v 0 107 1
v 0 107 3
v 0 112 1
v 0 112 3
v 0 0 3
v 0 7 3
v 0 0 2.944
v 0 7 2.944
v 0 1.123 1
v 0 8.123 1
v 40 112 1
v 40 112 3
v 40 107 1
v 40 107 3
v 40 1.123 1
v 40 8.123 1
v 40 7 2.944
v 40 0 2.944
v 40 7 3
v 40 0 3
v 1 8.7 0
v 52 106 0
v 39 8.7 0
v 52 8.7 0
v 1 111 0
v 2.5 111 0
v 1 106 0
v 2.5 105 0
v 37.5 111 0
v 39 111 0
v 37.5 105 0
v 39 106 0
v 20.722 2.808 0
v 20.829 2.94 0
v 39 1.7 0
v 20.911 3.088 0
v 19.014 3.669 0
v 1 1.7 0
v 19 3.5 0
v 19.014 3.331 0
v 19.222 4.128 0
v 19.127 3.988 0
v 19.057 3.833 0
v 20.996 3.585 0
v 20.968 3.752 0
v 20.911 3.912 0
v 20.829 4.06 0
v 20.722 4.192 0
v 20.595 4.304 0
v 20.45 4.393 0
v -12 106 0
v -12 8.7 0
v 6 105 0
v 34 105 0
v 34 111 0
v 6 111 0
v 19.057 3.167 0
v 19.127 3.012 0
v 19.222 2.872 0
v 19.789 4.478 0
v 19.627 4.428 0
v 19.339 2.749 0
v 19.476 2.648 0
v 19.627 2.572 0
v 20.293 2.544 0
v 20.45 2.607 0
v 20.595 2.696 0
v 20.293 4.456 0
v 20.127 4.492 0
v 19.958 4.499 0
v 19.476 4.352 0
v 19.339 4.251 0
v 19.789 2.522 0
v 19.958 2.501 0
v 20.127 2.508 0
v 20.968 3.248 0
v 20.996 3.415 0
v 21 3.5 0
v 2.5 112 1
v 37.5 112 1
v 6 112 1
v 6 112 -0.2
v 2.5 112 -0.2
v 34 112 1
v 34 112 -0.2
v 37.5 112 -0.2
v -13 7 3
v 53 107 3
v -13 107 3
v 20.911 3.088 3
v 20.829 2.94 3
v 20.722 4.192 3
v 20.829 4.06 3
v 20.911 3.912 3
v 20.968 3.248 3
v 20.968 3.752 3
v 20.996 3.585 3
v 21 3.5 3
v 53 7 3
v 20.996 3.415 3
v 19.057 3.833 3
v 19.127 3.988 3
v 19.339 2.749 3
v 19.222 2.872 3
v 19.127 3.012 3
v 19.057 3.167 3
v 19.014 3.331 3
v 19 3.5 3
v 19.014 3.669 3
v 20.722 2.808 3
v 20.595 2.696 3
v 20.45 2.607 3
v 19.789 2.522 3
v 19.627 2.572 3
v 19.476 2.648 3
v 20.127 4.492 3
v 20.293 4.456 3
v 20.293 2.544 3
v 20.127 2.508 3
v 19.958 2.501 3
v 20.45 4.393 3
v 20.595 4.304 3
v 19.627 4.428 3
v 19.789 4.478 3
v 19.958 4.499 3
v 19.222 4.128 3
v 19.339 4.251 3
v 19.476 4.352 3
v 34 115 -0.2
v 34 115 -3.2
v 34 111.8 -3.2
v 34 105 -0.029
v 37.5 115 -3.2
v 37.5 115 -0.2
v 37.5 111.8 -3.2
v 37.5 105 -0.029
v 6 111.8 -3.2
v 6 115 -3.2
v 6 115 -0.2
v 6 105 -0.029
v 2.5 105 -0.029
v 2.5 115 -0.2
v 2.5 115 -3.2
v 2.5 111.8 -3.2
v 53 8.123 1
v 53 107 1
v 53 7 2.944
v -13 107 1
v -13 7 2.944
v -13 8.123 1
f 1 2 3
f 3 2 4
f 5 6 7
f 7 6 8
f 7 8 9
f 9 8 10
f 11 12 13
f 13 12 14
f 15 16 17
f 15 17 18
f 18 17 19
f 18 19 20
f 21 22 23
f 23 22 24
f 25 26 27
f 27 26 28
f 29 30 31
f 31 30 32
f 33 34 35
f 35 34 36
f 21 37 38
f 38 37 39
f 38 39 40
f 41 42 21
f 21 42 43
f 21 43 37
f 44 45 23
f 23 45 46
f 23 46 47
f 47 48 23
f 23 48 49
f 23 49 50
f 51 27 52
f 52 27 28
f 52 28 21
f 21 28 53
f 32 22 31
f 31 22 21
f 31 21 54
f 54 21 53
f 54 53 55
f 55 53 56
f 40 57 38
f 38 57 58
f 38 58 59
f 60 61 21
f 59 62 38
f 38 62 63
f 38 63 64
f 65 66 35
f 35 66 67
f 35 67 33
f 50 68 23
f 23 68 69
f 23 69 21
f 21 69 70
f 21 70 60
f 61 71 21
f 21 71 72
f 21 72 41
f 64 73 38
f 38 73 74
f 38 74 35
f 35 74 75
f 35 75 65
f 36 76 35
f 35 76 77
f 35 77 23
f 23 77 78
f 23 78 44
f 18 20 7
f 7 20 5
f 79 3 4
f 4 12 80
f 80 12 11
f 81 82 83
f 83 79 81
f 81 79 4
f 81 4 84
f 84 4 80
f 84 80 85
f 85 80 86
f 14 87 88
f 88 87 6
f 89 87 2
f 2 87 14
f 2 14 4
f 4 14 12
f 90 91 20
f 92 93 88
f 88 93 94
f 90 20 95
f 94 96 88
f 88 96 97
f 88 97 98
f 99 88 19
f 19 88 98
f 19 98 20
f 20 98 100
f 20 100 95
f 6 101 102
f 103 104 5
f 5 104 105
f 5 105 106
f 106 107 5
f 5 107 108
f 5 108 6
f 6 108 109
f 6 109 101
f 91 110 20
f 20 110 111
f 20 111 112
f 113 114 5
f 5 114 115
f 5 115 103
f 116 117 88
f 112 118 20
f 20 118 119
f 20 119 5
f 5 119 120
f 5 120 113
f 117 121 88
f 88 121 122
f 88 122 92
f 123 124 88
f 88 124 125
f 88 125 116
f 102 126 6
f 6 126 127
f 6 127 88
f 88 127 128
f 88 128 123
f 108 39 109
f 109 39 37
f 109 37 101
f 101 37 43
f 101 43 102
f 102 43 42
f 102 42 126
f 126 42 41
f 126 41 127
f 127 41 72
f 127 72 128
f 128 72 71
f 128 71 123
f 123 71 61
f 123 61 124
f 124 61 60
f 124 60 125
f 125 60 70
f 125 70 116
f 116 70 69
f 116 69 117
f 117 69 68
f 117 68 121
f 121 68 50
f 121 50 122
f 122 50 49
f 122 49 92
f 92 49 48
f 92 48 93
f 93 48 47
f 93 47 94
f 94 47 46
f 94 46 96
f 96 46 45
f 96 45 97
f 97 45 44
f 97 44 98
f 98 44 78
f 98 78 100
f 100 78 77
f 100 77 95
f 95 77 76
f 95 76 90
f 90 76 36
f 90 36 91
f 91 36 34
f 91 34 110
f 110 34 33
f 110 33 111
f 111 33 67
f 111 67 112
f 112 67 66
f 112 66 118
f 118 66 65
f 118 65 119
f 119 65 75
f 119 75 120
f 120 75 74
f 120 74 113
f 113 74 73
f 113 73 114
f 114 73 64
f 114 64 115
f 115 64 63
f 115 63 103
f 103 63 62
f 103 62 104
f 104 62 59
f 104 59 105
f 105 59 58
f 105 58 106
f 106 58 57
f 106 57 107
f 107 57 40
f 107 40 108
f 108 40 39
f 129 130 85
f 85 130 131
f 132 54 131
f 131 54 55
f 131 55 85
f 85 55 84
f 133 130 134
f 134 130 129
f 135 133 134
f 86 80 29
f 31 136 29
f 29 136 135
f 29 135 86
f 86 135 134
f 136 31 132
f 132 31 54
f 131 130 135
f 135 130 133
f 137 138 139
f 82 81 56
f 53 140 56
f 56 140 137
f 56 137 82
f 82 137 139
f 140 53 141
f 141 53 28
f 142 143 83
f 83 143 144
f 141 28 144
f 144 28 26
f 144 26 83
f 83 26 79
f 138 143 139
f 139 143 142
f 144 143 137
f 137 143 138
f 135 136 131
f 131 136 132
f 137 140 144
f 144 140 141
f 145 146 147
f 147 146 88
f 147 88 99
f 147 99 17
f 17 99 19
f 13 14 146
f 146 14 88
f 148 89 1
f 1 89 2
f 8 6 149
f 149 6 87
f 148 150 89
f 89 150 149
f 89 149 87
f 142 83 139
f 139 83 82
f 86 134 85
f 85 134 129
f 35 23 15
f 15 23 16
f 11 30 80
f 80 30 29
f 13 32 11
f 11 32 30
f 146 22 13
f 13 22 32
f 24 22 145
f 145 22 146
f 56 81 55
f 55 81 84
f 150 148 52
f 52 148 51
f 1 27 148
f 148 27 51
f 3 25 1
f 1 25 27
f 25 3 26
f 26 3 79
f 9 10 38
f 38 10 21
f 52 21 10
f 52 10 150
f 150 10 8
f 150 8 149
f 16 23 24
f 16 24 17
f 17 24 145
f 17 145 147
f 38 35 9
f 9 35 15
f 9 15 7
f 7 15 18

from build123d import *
from OCP.BRepFilletAPI import BRepFilletAPI_MakeChamfer

# Parameters (mm, degrees)
SKETCH_1_W          = 40
SKETCH_1_H          = 112
EXTRUDE_1_DEPTH     = 3
SKETCH_2_R          = 1
CUT_EXTRUDE_1_DEPTH = 3
SKETCH_3_W          = 3.5
SKETCH_3_H          = 10
EXTRUDE_2_DEPTH     = 3.2
CHAMFER_1_SIZE      = 6.8
CHAMFER_1_SIZE2     = 3.170892075
SKETCH_4_W          = 66
SKETCH_4_H          = 100
EXTRUDE_3_DEPTH     = 3
SKETCH_5_W          = 42.259647881
SKETCH_5_H          = 3.16572893
CUT_EXTRUDE_2_DEPTH = 0.2
CHAMFER_3_SIZE      = 1
CHAMFER_4_SIZE      = 2.944486373
CHAMFER_4_SIZE_2    = 1.7


with BuildPart() as part:
    # 草圖1 → 填料-伸長1 (new body)
    with BuildSketch(Plane.XY):
        with Locations((20, 56)):
            Rectangle(SKETCH_1_W, SKETCH_1_H)
    extrude(amount=EXTRUDE_1_DEPTH)

    # 草圖2 → 除料-伸長1 (cut)
    with BuildSketch(Plane.XY):
        with Locations((20, 3.5)):
            Circle(SKETCH_2_R)
    extrude(amount=CUT_EXTRUDE_1_DEPTH, mode=Mode.SUBTRACT)

    # 草圖3 → 填料-伸長2 (add)
    with BuildSketch(Plane.XY):
        with Locations((35.75, 110)):
            Rectangle(SKETCH_3_W, SKETCH_3_H)
        with Locations((4.25, 110)):
            Rectangle(SKETCH_3_W, SKETCH_3_H)
    extrude(amount=-EXTRUDE_2_DEPTH)

    # 導角1: one chamfer whose edges measure the first distance from different faces: ONE call of the kernel's chamfer builder (chamfer() names one face for all edges)
    chamfer_1_edges_1 = [part.edges().sort_by_distance(p)[0] for p in [
        (35.75, 105, -3.2),
    ]]
    chamfer_1_side_1 = [part.faces().sort_by_distance(p)[0] for p in [
        (35.75, 110, -3.2),
    ]]
    chamfer_1_edges_2 = [part.edges().sort_by_distance(p)[0] for p in [
        (4.25, 105, -3.2),
    ]]
    chamfer_1_side_2 = [part.faces().sort_by_distance(p)[0] for p in [
        (4.25, 110, -3.2),
    ]]
    chamfer_1 = BRepFilletAPI_MakeChamfer(part.part.solid().wrapped)
    for e in chamfer_1_edges_1:
        chamfer_1.Add(CHAMFER_1_SIZE, CHAMFER_1_SIZE2, e.wrapped, chamfer_1_side_1[0].wrapped)  # the first distance lies on this face
    for e in chamfer_1_edges_2:
        chamfer_1.Add(CHAMFER_1_SIZE, CHAMFER_1_SIZE2, e.wrapped, chamfer_1_side_2[0].wrapped)  # the first distance lies on this face
    add(Compound.cast(chamfer_1.Shape()), mode=Mode.REPLACE)

    # 草圖4 → 填料-伸長3 (add)
    with BuildSketch(Plane.XY):
        with Locations((20, 57)):
            Rectangle(SKETCH_4_W, SKETCH_4_H)
    extrude(amount=EXTRUDE_3_DEPTH)

    # 草圖5 → 除料-伸長2 (cut)
    with BuildSketch(Plane.XY):
        with Locations((18.12982394, 113.582864465)):
            Rectangle(SKETCH_5_W, SKETCH_5_H)
    extrude(amount=-CUT_EXTRUDE_2_DEPTH, mode=Mode.SUBTRACT)

    # 導角3
    chamfer_3_edges = [part.edges().sort_by_distance(p)[0] for p in [
        (20, 112, 0),
        (1.25, 112, 0),
        (38.75, 112, 0),
        (40, 3.5, 0),
        (0, 109.5, 0),
        (40, 109.5, 0),
        (0, 3.5, 0),
        (-6.5, 107, 0),
        (46.5, 107, 0),
        (53, 57, 0),
        (-13, 57, 0),
    ]]
    chamfer(chamfer_3_edges, length=CHAMFER_3_SIZE)

    # 導角4
    # the kernel refuses this chamfer: 2.944486373, 1.7 mm, written as the material it takes off along each edge
    with BuildSketch(Plane(origin=(8.61763875, 7, 0), x_dir=(0, -0.01932676561270069, 0.9998132206222079), z_dir=(-1, 0, 0))) as chamfer_4_piece_1_section:
        Polygon((CHAMFER_4_SIZE * 0.999813220577, CHAMFER_4_SIZE * 0.0193267656118), (-CHAMFER_4_SIZE_2 * 0.0193267656127, CHAMFER_4_SIZE_2 * 0.999813220622), (0, 0), align=None)
    chamfer_4_piece_1 = extrude(amount=28.2352775, mode=Mode.PRIVATE)
    chamfer_4_piece_1 = split(chamfer_4_piece_1, bisect_by=Plane(origin=(0.556062959, 7.780962214, 0.443937041), z_dir=(-0.7071067811865476, 0, -0.7071067811865476)), keep=Keep.TOP, mode=Mode.PRIVATE)
    chamfer_4_piece_1 = split(chamfer_4_piece_1, bisect_by=Plane(origin=(0, 7.780962214, 0.258582722), z_dir=(1, 0, 0)), keep=Keep.TOP, mode=Mode.PRIVATE)
    add(chamfer_4_piece_1, mode=Mode.SUBTRACT)
    with BuildSketch(Plane(origin=(8.61763875, 7, 0), x_dir=(0, -0.01932676561270069, 0.9998132206222079), z_dir=(-1, 0, 0))) as chamfer_4_piece_2_section:
        Polygon((CHAMFER_4_SIZE * 0.999813220577, CHAMFER_4_SIZE * 0.0193267656118), (-CHAMFER_4_SIZE_2 * 0.0193267656127, CHAMFER_4_SIZE_2 * 0.999813220622), (0, 0), align=None)
    chamfer_4_piece_2 = extrude(amount=28.2352775, mode=Mode.PRIVATE)
    chamfer_4_piece_2 = split(chamfer_4_piece_2, bisect_by=Plane(origin=(-0.79990122, 7.215436489, 1.79990122), z_dir=(0.7071067811865476, 0, 0.7071067811865476)), keep=Keep.TOP, mode=Mode.PRIVATE)
    chamfer_4_piece_2 = split(chamfer_4_piece_2, bisect_by=Plane(origin=(0, 7.215436489, 2.06653496), z_dir=(-1, 0, 0)), keep=Keep.TOP, mode=Mode.PRIVATE)
    add(chamfer_4_piece_2, mode=Mode.SUBTRACT)
    with BuildSketch(Plane(origin=(8.61763875, 7, 0), x_dir=(0, -0.01932676561270069, 0.9998132206222079), z_dir=(-1, 0, 0))) as chamfer_4_piece_3_section:
        Polygon((CHAMFER_4_SIZE * 0.999813220577, CHAMFER_4_SIZE * 0.0193267656118), (-CHAMFER_4_SIZE_2 * 0.0193267656127, CHAMFER_4_SIZE_2 * 0.999813220622), (0, 0), align=None)
    chamfer_4_piece_3 = extrude(amount=28.2352775, mode=Mode.PRIVATE)
    chamfer_4_piece_3 = split(chamfer_4_piece_3, bisect_by=Plane(origin=(-4.964199095, 7.550450485, 5.964199095), z_dir=(-0.7071067811865476, 0, -0.7071067811865476)), keep=Keep.TOP, mode=Mode.PRIVATE)
    chamfer_4_piece_3 = split(chamfer_4_piece_3, bisect_by=Plane(origin=(0, 7.550450485, 0.970145216), z_dir=(-1, 0, 0)), keep=Keep.TOP, mode=Mode.PRIVATE)
    add(chamfer_4_piece_3, mode=Mode.SUBTRACT)
    with BuildSketch(Plane(origin=(59.61763875, 7, 0), x_dir=(0, -0.01932676561270069, 0.9998132206222079), z_dir=(-1, 0, 0))) as chamfer_4_piece_4_section:
        Polygon((CHAMFER_4_SIZE * 0.999813220577, CHAMFER_4_SIZE * 0.0193267656118), (-CHAMFER_4_SIZE_2 * 0.0193267656127, CHAMFER_4_SIZE_2 * 0.999813220622), (0, 0), align=None)
    chamfer_4_piece_4 = extrude(amount=28.2352775, mode=Mode.PRIVATE)
    chamfer_4_piece_4 = split(chamfer_4_piece_4, bisect_by=Plane(origin=(40, 7.550450485, 0.970145216), z_dir=(1, 0, 0)), keep=Keep.TOP, mode=Mode.PRIVATE)
    chamfer_4_piece_4 = split(chamfer_4_piece_4, bisect_by=Plane(origin=(44.964199095, 7.550450485, 5.964199095), z_dir=(0.7071067811865476, 0, -0.7071067811865476)), keep=Keep.TOP, mode=Mode.PRIVATE)
    add(chamfer_4_piece_4, mode=Mode.SUBTRACT)
    with BuildSketch(Plane(origin=(59.61763875, 7, 0), x_dir=(0, -0.01932676561270069, 0.9998132206222079), z_dir=(-1, 0, 0))) as chamfer_4_piece_5_section:
        Polygon((CHAMFER_4_SIZE * 0.999813220577, CHAMFER_4_SIZE * 0.0193267656118), (-CHAMFER_4_SIZE_2 * 0.0193267656127, CHAMFER_4_SIZE_2 * 0.999813220622), (0, 0), align=None)
    chamfer_4_piece_5 = extrude(amount=28.2352775, mode=Mode.PRIVATE)
    chamfer_4_piece_5 = split(chamfer_4_piece_5, bisect_by=Plane(origin=(40, 7.780962214, 0.258582722), z_dir=(-1, 0, 0)), keep=Keep.TOP, mode=Mode.PRIVATE)
    chamfer_4_piece_5 = split(chamfer_4_piece_5, bisect_by=Plane(origin=(39.443937041, 7.780962214, 0.443937041), z_dir=(0.7071067811865476, 0, -0.7071067811865476)), keep=Keep.TOP, mode=Mode.PRIVATE)
    add(chamfer_4_piece_5, mode=Mode.SUBTRACT)
    with BuildSketch(Plane(origin=(59.61763875, 7, 0), x_dir=(0, -0.01932676561270069, 0.9998132206222079), z_dir=(-1, 0, 0))) as chamfer_4_piece_6_section:
        Polygon((CHAMFER_4_SIZE * 0.999813220577, CHAMFER_4_SIZE * 0.0193267656118), (-CHAMFER_4_SIZE_2 * 0.0193267656127, CHAMFER_4_SIZE_2 * 0.999813220622), (0, 0), align=None)
    chamfer_4_piece_6 = extrude(amount=28.2352775, mode=Mode.PRIVATE)
    chamfer_4_piece_6 = split(chamfer_4_piece_6, bisect_by=Plane(origin=(40, 7.215436489, 2.06653496), z_dir=(1, 0, 0)), keep=Keep.TOP, mode=Mode.PRIVATE)
    chamfer_4_piece_6 = split(chamfer_4_piece_6, bisect_by=Plane(origin=(40.79990122, 7.215436489, 1.79990122), z_dir=(-0.7071067811865476, 0, 0.7071067811865476)), keep=Keep.TOP, mode=Mode.PRIVATE)
    add(chamfer_4_piece_6, mode=Mode.SUBTRACT)
    with BuildSketch(Plane(origin=(-6.61763875, 0, 0), x_dir=(0, -0.019326765612700646, 0.9998132206222079), z_dir=(1, 0, 0))) as chamfer_4_piece_7:
        Polygon((CHAMFER_4_SIZE * 0.999813220577, -CHAMFER_4_SIZE * 0.0193267656118), (-CHAMFER_4_SIZE_2 * 0.0193267656127, -CHAMFER_4_SIZE_2 * 0.999813220622), (0, 0), align=None)
    extrude(amount=53.2352775, mode=Mode.SUBTRACT)


solid = part.part
